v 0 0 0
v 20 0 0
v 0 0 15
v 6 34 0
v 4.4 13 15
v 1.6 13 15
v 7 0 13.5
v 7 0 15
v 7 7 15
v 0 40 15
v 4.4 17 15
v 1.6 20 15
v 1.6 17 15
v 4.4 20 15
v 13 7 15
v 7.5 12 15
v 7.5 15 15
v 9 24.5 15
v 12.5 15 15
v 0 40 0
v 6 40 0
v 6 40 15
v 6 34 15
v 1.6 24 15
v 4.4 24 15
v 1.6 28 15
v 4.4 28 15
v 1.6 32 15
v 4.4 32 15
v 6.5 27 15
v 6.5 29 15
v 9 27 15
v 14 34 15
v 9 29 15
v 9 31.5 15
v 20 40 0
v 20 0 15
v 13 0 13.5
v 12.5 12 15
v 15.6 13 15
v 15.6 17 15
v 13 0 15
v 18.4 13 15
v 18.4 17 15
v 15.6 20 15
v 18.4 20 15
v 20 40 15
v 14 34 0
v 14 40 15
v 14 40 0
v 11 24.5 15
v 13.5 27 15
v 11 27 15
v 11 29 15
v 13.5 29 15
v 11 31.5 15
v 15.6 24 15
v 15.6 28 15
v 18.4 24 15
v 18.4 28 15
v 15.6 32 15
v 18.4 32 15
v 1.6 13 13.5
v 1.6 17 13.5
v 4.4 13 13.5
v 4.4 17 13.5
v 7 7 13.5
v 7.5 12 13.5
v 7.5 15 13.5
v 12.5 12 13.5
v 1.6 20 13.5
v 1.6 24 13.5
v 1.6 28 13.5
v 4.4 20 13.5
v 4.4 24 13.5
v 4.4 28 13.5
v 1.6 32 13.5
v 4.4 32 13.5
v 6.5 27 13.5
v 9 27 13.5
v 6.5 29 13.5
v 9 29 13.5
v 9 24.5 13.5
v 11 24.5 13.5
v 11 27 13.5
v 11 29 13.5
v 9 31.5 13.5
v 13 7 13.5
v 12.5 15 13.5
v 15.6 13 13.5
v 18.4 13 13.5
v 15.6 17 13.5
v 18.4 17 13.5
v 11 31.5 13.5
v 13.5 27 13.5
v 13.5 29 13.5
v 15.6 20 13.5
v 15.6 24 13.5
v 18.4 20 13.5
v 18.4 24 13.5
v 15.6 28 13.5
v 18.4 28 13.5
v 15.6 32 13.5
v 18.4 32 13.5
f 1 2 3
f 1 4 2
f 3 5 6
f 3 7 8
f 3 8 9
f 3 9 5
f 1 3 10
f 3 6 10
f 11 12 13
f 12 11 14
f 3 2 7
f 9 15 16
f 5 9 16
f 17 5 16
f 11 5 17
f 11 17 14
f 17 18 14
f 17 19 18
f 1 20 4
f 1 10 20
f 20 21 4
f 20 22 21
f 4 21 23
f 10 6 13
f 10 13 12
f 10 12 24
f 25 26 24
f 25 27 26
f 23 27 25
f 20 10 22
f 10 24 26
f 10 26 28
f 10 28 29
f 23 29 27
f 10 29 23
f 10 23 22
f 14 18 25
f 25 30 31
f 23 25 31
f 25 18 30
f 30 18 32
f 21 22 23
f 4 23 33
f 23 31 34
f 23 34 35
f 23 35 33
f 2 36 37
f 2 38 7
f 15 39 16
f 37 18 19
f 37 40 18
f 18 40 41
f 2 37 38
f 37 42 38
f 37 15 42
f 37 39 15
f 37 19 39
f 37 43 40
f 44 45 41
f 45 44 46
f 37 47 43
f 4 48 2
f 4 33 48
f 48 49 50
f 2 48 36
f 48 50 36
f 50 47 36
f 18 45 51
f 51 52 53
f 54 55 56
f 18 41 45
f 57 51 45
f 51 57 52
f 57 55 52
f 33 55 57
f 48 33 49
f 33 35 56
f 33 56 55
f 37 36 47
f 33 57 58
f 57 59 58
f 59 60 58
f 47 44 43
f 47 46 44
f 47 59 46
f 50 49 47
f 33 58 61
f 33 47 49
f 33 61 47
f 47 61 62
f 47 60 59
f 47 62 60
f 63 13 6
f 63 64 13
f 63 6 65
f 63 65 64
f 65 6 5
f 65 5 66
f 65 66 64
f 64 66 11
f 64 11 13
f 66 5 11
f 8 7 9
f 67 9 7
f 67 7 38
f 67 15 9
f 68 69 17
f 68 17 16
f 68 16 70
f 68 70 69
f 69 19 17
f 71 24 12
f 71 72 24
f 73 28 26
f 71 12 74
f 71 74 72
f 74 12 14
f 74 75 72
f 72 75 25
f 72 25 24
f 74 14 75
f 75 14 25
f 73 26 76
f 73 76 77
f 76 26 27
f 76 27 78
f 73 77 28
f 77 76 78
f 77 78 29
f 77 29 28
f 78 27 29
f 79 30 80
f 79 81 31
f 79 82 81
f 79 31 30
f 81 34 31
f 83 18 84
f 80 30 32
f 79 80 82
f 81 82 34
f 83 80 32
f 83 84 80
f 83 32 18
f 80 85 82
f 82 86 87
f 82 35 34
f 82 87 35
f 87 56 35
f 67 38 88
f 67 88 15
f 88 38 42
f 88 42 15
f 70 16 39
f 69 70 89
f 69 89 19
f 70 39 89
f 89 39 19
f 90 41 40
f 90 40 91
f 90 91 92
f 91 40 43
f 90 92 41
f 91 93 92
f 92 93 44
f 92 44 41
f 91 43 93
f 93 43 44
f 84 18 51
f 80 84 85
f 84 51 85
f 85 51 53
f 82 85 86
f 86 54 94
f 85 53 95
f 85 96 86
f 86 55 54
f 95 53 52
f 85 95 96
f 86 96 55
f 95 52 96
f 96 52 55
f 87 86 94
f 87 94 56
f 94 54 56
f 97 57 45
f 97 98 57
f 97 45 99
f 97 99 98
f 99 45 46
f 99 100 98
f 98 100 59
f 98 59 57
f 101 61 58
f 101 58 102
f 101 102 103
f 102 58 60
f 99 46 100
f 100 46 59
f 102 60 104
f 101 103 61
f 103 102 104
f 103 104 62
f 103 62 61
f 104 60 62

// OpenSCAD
// Facade game piece in mm: X width, Y height, Z depth.
// Place Z=0 flat on the build plate; all recessed details are 1.5 mm deep.
$fn=64;
module rect(x,y,w,h){translate([x,y]) square([w,h]);}
module disk(x,y,r){translate([x,y]) circle(r=r);}
module line(a,b,w=1.5){hull(){translate(a) circle(d=w);translate(b) circle(d=w);}}
module path(points,w=1.5){for(i=[0:len(points)-2]) line(points[i],points[i+1],w);}
module cross_icon(x,y,size=6,bar=1.8){union(){rect(x-size/2,y-bar/2,size,bar);rect(x-bar/2,y-size/2,bar,size);}}
module tank(x,y,w,h){union(){rect(x,y,w,h-w/2);disk(x+w/2,y+h-w/2,w/2);}}
module ring(x,y,r,w=1.3){difference(){disk(x,y,r);disk(x,y,r-w);}}

module silhouette(){
union(){rect(0,0,20,34);rect(0,0,6,40);rect(14,0,6,40);}
}
module facade_recesses(){union(){
cross_icon(10,28,7,2);
for(x=[1.6,15.6]) for(y=[13,20,28]) rect(x,y,2.8,4);
rect(7,0,6,7);line([10,1.6],[10,5.4],1.2);
rect(7.5,12,5,3);
}}
difference(){
 linear_extrude(height=15) silhouette();
 translate([0,0,13.5]) linear_extrude(height=2) facade_recesses();
}
